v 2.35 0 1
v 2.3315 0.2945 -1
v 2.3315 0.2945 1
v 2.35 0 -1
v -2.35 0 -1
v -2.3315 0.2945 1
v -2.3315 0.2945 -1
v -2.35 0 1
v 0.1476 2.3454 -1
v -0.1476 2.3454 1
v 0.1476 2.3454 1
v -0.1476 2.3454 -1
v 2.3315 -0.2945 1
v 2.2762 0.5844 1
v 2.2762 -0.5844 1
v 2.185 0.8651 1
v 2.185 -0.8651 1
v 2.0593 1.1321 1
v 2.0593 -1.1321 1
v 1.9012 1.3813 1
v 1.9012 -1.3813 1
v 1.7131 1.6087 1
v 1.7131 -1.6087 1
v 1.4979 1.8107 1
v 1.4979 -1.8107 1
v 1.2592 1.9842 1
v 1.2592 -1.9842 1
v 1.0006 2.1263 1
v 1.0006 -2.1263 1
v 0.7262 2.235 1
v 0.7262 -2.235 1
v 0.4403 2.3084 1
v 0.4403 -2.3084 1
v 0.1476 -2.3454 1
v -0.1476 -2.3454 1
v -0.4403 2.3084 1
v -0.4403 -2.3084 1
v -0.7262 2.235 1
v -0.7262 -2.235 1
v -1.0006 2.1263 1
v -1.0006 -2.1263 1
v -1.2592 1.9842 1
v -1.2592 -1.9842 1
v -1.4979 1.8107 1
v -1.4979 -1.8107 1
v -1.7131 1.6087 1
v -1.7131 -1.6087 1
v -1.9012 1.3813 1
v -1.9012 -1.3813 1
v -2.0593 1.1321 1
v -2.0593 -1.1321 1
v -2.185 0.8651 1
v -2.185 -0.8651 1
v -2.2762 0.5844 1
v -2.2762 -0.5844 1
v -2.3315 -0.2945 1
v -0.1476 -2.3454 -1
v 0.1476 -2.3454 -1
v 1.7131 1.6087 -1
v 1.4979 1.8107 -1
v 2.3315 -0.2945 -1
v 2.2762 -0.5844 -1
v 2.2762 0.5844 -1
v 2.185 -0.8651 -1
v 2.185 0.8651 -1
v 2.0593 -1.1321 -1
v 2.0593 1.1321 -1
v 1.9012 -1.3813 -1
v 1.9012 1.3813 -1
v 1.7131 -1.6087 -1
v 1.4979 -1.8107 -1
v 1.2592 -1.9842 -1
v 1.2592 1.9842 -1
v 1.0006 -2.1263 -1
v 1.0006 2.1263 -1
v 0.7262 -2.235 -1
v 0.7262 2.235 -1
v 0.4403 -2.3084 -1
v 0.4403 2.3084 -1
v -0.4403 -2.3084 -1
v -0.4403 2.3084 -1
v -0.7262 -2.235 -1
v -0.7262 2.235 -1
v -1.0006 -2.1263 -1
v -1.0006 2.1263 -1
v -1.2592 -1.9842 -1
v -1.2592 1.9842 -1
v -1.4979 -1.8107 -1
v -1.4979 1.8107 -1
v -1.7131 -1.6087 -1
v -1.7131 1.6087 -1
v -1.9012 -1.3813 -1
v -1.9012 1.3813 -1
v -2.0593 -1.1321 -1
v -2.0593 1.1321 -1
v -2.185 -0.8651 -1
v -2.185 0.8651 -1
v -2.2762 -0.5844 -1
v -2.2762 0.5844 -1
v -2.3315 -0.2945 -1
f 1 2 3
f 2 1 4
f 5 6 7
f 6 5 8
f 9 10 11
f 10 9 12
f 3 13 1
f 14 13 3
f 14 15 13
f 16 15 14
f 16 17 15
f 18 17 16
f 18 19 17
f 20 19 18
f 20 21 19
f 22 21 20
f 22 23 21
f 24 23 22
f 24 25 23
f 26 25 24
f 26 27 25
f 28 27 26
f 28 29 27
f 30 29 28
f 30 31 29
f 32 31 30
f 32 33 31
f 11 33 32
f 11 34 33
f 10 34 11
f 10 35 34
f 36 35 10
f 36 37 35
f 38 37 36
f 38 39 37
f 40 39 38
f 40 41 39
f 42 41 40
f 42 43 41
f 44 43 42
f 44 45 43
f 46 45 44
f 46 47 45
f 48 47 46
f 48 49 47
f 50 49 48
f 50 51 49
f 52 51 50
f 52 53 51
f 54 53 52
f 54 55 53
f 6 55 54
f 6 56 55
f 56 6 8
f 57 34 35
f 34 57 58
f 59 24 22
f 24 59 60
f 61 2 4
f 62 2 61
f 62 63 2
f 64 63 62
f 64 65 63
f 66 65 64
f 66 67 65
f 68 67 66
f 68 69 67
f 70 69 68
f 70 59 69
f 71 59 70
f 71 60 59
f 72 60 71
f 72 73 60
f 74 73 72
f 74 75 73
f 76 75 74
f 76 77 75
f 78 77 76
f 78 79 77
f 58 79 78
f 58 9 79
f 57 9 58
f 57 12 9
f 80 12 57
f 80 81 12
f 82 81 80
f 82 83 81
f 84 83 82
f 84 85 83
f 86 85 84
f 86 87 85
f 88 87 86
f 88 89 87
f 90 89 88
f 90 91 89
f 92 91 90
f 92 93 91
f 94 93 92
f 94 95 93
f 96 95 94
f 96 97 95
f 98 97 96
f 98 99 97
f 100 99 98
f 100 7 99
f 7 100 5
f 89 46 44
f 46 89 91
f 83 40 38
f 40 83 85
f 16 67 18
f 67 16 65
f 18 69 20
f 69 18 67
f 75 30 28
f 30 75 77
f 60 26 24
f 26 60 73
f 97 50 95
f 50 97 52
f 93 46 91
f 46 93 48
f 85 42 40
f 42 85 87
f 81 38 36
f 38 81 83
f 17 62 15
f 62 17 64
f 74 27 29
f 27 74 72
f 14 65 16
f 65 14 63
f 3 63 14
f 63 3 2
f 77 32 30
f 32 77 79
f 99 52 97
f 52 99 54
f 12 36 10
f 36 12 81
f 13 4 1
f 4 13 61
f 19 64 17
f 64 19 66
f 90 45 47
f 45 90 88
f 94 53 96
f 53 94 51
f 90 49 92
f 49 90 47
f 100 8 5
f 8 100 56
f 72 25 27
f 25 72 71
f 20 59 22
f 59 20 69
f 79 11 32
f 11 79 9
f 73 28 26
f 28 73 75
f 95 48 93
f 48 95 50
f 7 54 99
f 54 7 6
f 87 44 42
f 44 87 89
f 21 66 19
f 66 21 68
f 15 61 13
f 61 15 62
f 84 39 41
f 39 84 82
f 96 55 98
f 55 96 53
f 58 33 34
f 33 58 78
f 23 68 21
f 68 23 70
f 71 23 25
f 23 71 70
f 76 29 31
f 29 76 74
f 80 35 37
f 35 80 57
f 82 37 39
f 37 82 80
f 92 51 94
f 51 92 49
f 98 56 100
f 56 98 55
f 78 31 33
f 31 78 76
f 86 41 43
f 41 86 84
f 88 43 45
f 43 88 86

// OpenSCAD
$fn = 50;


difference() {
	union() {
		translate(v = [0, 0, -1.0000000000]) {
			cylinder(h = 2, r = 2.3500000000);
		}
	}
	union() {
		translate(v = [0, 0, -100.0000000000]) {
			cylinder(h = 200, r = 0);
		}
	}
}
